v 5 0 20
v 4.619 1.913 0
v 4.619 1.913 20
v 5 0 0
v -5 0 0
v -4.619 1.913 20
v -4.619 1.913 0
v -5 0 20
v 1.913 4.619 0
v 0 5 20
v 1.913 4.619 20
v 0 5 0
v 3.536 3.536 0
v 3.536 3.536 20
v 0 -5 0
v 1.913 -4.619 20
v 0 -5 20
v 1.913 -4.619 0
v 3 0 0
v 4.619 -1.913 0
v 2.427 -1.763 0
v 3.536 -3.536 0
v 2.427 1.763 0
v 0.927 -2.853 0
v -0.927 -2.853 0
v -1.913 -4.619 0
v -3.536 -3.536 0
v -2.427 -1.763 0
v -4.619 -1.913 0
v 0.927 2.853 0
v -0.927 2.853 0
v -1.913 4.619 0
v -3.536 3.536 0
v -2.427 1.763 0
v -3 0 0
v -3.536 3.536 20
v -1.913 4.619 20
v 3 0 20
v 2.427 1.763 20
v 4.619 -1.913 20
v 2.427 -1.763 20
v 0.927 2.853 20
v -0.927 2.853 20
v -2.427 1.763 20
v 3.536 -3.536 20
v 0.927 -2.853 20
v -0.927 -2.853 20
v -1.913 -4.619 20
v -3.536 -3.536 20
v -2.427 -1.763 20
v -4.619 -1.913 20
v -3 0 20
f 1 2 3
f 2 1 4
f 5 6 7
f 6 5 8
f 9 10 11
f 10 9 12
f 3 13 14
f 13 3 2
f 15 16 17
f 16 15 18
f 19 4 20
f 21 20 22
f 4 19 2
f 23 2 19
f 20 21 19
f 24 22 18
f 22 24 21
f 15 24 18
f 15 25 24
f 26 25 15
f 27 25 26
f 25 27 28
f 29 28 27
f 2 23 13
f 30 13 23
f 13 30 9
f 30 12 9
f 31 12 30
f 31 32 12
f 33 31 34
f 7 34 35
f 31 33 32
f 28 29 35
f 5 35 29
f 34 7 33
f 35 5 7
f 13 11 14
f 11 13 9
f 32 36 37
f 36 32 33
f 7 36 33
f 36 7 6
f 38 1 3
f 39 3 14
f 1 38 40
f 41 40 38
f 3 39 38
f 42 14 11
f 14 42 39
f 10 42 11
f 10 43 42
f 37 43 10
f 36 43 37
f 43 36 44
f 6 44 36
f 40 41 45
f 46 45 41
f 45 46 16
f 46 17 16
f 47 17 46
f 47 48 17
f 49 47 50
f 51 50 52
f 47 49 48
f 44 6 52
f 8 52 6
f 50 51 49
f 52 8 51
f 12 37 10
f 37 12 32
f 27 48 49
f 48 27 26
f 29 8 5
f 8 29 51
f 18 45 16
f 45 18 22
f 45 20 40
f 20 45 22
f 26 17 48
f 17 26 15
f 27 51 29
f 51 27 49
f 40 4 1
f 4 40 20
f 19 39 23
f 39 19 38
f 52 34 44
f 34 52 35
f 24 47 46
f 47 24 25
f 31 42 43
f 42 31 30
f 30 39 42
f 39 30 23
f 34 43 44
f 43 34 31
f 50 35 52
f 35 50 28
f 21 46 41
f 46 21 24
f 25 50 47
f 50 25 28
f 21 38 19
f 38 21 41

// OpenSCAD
difference(){
    cylinder(20,5, 5);
    cylinder(40,3, 3);
}
